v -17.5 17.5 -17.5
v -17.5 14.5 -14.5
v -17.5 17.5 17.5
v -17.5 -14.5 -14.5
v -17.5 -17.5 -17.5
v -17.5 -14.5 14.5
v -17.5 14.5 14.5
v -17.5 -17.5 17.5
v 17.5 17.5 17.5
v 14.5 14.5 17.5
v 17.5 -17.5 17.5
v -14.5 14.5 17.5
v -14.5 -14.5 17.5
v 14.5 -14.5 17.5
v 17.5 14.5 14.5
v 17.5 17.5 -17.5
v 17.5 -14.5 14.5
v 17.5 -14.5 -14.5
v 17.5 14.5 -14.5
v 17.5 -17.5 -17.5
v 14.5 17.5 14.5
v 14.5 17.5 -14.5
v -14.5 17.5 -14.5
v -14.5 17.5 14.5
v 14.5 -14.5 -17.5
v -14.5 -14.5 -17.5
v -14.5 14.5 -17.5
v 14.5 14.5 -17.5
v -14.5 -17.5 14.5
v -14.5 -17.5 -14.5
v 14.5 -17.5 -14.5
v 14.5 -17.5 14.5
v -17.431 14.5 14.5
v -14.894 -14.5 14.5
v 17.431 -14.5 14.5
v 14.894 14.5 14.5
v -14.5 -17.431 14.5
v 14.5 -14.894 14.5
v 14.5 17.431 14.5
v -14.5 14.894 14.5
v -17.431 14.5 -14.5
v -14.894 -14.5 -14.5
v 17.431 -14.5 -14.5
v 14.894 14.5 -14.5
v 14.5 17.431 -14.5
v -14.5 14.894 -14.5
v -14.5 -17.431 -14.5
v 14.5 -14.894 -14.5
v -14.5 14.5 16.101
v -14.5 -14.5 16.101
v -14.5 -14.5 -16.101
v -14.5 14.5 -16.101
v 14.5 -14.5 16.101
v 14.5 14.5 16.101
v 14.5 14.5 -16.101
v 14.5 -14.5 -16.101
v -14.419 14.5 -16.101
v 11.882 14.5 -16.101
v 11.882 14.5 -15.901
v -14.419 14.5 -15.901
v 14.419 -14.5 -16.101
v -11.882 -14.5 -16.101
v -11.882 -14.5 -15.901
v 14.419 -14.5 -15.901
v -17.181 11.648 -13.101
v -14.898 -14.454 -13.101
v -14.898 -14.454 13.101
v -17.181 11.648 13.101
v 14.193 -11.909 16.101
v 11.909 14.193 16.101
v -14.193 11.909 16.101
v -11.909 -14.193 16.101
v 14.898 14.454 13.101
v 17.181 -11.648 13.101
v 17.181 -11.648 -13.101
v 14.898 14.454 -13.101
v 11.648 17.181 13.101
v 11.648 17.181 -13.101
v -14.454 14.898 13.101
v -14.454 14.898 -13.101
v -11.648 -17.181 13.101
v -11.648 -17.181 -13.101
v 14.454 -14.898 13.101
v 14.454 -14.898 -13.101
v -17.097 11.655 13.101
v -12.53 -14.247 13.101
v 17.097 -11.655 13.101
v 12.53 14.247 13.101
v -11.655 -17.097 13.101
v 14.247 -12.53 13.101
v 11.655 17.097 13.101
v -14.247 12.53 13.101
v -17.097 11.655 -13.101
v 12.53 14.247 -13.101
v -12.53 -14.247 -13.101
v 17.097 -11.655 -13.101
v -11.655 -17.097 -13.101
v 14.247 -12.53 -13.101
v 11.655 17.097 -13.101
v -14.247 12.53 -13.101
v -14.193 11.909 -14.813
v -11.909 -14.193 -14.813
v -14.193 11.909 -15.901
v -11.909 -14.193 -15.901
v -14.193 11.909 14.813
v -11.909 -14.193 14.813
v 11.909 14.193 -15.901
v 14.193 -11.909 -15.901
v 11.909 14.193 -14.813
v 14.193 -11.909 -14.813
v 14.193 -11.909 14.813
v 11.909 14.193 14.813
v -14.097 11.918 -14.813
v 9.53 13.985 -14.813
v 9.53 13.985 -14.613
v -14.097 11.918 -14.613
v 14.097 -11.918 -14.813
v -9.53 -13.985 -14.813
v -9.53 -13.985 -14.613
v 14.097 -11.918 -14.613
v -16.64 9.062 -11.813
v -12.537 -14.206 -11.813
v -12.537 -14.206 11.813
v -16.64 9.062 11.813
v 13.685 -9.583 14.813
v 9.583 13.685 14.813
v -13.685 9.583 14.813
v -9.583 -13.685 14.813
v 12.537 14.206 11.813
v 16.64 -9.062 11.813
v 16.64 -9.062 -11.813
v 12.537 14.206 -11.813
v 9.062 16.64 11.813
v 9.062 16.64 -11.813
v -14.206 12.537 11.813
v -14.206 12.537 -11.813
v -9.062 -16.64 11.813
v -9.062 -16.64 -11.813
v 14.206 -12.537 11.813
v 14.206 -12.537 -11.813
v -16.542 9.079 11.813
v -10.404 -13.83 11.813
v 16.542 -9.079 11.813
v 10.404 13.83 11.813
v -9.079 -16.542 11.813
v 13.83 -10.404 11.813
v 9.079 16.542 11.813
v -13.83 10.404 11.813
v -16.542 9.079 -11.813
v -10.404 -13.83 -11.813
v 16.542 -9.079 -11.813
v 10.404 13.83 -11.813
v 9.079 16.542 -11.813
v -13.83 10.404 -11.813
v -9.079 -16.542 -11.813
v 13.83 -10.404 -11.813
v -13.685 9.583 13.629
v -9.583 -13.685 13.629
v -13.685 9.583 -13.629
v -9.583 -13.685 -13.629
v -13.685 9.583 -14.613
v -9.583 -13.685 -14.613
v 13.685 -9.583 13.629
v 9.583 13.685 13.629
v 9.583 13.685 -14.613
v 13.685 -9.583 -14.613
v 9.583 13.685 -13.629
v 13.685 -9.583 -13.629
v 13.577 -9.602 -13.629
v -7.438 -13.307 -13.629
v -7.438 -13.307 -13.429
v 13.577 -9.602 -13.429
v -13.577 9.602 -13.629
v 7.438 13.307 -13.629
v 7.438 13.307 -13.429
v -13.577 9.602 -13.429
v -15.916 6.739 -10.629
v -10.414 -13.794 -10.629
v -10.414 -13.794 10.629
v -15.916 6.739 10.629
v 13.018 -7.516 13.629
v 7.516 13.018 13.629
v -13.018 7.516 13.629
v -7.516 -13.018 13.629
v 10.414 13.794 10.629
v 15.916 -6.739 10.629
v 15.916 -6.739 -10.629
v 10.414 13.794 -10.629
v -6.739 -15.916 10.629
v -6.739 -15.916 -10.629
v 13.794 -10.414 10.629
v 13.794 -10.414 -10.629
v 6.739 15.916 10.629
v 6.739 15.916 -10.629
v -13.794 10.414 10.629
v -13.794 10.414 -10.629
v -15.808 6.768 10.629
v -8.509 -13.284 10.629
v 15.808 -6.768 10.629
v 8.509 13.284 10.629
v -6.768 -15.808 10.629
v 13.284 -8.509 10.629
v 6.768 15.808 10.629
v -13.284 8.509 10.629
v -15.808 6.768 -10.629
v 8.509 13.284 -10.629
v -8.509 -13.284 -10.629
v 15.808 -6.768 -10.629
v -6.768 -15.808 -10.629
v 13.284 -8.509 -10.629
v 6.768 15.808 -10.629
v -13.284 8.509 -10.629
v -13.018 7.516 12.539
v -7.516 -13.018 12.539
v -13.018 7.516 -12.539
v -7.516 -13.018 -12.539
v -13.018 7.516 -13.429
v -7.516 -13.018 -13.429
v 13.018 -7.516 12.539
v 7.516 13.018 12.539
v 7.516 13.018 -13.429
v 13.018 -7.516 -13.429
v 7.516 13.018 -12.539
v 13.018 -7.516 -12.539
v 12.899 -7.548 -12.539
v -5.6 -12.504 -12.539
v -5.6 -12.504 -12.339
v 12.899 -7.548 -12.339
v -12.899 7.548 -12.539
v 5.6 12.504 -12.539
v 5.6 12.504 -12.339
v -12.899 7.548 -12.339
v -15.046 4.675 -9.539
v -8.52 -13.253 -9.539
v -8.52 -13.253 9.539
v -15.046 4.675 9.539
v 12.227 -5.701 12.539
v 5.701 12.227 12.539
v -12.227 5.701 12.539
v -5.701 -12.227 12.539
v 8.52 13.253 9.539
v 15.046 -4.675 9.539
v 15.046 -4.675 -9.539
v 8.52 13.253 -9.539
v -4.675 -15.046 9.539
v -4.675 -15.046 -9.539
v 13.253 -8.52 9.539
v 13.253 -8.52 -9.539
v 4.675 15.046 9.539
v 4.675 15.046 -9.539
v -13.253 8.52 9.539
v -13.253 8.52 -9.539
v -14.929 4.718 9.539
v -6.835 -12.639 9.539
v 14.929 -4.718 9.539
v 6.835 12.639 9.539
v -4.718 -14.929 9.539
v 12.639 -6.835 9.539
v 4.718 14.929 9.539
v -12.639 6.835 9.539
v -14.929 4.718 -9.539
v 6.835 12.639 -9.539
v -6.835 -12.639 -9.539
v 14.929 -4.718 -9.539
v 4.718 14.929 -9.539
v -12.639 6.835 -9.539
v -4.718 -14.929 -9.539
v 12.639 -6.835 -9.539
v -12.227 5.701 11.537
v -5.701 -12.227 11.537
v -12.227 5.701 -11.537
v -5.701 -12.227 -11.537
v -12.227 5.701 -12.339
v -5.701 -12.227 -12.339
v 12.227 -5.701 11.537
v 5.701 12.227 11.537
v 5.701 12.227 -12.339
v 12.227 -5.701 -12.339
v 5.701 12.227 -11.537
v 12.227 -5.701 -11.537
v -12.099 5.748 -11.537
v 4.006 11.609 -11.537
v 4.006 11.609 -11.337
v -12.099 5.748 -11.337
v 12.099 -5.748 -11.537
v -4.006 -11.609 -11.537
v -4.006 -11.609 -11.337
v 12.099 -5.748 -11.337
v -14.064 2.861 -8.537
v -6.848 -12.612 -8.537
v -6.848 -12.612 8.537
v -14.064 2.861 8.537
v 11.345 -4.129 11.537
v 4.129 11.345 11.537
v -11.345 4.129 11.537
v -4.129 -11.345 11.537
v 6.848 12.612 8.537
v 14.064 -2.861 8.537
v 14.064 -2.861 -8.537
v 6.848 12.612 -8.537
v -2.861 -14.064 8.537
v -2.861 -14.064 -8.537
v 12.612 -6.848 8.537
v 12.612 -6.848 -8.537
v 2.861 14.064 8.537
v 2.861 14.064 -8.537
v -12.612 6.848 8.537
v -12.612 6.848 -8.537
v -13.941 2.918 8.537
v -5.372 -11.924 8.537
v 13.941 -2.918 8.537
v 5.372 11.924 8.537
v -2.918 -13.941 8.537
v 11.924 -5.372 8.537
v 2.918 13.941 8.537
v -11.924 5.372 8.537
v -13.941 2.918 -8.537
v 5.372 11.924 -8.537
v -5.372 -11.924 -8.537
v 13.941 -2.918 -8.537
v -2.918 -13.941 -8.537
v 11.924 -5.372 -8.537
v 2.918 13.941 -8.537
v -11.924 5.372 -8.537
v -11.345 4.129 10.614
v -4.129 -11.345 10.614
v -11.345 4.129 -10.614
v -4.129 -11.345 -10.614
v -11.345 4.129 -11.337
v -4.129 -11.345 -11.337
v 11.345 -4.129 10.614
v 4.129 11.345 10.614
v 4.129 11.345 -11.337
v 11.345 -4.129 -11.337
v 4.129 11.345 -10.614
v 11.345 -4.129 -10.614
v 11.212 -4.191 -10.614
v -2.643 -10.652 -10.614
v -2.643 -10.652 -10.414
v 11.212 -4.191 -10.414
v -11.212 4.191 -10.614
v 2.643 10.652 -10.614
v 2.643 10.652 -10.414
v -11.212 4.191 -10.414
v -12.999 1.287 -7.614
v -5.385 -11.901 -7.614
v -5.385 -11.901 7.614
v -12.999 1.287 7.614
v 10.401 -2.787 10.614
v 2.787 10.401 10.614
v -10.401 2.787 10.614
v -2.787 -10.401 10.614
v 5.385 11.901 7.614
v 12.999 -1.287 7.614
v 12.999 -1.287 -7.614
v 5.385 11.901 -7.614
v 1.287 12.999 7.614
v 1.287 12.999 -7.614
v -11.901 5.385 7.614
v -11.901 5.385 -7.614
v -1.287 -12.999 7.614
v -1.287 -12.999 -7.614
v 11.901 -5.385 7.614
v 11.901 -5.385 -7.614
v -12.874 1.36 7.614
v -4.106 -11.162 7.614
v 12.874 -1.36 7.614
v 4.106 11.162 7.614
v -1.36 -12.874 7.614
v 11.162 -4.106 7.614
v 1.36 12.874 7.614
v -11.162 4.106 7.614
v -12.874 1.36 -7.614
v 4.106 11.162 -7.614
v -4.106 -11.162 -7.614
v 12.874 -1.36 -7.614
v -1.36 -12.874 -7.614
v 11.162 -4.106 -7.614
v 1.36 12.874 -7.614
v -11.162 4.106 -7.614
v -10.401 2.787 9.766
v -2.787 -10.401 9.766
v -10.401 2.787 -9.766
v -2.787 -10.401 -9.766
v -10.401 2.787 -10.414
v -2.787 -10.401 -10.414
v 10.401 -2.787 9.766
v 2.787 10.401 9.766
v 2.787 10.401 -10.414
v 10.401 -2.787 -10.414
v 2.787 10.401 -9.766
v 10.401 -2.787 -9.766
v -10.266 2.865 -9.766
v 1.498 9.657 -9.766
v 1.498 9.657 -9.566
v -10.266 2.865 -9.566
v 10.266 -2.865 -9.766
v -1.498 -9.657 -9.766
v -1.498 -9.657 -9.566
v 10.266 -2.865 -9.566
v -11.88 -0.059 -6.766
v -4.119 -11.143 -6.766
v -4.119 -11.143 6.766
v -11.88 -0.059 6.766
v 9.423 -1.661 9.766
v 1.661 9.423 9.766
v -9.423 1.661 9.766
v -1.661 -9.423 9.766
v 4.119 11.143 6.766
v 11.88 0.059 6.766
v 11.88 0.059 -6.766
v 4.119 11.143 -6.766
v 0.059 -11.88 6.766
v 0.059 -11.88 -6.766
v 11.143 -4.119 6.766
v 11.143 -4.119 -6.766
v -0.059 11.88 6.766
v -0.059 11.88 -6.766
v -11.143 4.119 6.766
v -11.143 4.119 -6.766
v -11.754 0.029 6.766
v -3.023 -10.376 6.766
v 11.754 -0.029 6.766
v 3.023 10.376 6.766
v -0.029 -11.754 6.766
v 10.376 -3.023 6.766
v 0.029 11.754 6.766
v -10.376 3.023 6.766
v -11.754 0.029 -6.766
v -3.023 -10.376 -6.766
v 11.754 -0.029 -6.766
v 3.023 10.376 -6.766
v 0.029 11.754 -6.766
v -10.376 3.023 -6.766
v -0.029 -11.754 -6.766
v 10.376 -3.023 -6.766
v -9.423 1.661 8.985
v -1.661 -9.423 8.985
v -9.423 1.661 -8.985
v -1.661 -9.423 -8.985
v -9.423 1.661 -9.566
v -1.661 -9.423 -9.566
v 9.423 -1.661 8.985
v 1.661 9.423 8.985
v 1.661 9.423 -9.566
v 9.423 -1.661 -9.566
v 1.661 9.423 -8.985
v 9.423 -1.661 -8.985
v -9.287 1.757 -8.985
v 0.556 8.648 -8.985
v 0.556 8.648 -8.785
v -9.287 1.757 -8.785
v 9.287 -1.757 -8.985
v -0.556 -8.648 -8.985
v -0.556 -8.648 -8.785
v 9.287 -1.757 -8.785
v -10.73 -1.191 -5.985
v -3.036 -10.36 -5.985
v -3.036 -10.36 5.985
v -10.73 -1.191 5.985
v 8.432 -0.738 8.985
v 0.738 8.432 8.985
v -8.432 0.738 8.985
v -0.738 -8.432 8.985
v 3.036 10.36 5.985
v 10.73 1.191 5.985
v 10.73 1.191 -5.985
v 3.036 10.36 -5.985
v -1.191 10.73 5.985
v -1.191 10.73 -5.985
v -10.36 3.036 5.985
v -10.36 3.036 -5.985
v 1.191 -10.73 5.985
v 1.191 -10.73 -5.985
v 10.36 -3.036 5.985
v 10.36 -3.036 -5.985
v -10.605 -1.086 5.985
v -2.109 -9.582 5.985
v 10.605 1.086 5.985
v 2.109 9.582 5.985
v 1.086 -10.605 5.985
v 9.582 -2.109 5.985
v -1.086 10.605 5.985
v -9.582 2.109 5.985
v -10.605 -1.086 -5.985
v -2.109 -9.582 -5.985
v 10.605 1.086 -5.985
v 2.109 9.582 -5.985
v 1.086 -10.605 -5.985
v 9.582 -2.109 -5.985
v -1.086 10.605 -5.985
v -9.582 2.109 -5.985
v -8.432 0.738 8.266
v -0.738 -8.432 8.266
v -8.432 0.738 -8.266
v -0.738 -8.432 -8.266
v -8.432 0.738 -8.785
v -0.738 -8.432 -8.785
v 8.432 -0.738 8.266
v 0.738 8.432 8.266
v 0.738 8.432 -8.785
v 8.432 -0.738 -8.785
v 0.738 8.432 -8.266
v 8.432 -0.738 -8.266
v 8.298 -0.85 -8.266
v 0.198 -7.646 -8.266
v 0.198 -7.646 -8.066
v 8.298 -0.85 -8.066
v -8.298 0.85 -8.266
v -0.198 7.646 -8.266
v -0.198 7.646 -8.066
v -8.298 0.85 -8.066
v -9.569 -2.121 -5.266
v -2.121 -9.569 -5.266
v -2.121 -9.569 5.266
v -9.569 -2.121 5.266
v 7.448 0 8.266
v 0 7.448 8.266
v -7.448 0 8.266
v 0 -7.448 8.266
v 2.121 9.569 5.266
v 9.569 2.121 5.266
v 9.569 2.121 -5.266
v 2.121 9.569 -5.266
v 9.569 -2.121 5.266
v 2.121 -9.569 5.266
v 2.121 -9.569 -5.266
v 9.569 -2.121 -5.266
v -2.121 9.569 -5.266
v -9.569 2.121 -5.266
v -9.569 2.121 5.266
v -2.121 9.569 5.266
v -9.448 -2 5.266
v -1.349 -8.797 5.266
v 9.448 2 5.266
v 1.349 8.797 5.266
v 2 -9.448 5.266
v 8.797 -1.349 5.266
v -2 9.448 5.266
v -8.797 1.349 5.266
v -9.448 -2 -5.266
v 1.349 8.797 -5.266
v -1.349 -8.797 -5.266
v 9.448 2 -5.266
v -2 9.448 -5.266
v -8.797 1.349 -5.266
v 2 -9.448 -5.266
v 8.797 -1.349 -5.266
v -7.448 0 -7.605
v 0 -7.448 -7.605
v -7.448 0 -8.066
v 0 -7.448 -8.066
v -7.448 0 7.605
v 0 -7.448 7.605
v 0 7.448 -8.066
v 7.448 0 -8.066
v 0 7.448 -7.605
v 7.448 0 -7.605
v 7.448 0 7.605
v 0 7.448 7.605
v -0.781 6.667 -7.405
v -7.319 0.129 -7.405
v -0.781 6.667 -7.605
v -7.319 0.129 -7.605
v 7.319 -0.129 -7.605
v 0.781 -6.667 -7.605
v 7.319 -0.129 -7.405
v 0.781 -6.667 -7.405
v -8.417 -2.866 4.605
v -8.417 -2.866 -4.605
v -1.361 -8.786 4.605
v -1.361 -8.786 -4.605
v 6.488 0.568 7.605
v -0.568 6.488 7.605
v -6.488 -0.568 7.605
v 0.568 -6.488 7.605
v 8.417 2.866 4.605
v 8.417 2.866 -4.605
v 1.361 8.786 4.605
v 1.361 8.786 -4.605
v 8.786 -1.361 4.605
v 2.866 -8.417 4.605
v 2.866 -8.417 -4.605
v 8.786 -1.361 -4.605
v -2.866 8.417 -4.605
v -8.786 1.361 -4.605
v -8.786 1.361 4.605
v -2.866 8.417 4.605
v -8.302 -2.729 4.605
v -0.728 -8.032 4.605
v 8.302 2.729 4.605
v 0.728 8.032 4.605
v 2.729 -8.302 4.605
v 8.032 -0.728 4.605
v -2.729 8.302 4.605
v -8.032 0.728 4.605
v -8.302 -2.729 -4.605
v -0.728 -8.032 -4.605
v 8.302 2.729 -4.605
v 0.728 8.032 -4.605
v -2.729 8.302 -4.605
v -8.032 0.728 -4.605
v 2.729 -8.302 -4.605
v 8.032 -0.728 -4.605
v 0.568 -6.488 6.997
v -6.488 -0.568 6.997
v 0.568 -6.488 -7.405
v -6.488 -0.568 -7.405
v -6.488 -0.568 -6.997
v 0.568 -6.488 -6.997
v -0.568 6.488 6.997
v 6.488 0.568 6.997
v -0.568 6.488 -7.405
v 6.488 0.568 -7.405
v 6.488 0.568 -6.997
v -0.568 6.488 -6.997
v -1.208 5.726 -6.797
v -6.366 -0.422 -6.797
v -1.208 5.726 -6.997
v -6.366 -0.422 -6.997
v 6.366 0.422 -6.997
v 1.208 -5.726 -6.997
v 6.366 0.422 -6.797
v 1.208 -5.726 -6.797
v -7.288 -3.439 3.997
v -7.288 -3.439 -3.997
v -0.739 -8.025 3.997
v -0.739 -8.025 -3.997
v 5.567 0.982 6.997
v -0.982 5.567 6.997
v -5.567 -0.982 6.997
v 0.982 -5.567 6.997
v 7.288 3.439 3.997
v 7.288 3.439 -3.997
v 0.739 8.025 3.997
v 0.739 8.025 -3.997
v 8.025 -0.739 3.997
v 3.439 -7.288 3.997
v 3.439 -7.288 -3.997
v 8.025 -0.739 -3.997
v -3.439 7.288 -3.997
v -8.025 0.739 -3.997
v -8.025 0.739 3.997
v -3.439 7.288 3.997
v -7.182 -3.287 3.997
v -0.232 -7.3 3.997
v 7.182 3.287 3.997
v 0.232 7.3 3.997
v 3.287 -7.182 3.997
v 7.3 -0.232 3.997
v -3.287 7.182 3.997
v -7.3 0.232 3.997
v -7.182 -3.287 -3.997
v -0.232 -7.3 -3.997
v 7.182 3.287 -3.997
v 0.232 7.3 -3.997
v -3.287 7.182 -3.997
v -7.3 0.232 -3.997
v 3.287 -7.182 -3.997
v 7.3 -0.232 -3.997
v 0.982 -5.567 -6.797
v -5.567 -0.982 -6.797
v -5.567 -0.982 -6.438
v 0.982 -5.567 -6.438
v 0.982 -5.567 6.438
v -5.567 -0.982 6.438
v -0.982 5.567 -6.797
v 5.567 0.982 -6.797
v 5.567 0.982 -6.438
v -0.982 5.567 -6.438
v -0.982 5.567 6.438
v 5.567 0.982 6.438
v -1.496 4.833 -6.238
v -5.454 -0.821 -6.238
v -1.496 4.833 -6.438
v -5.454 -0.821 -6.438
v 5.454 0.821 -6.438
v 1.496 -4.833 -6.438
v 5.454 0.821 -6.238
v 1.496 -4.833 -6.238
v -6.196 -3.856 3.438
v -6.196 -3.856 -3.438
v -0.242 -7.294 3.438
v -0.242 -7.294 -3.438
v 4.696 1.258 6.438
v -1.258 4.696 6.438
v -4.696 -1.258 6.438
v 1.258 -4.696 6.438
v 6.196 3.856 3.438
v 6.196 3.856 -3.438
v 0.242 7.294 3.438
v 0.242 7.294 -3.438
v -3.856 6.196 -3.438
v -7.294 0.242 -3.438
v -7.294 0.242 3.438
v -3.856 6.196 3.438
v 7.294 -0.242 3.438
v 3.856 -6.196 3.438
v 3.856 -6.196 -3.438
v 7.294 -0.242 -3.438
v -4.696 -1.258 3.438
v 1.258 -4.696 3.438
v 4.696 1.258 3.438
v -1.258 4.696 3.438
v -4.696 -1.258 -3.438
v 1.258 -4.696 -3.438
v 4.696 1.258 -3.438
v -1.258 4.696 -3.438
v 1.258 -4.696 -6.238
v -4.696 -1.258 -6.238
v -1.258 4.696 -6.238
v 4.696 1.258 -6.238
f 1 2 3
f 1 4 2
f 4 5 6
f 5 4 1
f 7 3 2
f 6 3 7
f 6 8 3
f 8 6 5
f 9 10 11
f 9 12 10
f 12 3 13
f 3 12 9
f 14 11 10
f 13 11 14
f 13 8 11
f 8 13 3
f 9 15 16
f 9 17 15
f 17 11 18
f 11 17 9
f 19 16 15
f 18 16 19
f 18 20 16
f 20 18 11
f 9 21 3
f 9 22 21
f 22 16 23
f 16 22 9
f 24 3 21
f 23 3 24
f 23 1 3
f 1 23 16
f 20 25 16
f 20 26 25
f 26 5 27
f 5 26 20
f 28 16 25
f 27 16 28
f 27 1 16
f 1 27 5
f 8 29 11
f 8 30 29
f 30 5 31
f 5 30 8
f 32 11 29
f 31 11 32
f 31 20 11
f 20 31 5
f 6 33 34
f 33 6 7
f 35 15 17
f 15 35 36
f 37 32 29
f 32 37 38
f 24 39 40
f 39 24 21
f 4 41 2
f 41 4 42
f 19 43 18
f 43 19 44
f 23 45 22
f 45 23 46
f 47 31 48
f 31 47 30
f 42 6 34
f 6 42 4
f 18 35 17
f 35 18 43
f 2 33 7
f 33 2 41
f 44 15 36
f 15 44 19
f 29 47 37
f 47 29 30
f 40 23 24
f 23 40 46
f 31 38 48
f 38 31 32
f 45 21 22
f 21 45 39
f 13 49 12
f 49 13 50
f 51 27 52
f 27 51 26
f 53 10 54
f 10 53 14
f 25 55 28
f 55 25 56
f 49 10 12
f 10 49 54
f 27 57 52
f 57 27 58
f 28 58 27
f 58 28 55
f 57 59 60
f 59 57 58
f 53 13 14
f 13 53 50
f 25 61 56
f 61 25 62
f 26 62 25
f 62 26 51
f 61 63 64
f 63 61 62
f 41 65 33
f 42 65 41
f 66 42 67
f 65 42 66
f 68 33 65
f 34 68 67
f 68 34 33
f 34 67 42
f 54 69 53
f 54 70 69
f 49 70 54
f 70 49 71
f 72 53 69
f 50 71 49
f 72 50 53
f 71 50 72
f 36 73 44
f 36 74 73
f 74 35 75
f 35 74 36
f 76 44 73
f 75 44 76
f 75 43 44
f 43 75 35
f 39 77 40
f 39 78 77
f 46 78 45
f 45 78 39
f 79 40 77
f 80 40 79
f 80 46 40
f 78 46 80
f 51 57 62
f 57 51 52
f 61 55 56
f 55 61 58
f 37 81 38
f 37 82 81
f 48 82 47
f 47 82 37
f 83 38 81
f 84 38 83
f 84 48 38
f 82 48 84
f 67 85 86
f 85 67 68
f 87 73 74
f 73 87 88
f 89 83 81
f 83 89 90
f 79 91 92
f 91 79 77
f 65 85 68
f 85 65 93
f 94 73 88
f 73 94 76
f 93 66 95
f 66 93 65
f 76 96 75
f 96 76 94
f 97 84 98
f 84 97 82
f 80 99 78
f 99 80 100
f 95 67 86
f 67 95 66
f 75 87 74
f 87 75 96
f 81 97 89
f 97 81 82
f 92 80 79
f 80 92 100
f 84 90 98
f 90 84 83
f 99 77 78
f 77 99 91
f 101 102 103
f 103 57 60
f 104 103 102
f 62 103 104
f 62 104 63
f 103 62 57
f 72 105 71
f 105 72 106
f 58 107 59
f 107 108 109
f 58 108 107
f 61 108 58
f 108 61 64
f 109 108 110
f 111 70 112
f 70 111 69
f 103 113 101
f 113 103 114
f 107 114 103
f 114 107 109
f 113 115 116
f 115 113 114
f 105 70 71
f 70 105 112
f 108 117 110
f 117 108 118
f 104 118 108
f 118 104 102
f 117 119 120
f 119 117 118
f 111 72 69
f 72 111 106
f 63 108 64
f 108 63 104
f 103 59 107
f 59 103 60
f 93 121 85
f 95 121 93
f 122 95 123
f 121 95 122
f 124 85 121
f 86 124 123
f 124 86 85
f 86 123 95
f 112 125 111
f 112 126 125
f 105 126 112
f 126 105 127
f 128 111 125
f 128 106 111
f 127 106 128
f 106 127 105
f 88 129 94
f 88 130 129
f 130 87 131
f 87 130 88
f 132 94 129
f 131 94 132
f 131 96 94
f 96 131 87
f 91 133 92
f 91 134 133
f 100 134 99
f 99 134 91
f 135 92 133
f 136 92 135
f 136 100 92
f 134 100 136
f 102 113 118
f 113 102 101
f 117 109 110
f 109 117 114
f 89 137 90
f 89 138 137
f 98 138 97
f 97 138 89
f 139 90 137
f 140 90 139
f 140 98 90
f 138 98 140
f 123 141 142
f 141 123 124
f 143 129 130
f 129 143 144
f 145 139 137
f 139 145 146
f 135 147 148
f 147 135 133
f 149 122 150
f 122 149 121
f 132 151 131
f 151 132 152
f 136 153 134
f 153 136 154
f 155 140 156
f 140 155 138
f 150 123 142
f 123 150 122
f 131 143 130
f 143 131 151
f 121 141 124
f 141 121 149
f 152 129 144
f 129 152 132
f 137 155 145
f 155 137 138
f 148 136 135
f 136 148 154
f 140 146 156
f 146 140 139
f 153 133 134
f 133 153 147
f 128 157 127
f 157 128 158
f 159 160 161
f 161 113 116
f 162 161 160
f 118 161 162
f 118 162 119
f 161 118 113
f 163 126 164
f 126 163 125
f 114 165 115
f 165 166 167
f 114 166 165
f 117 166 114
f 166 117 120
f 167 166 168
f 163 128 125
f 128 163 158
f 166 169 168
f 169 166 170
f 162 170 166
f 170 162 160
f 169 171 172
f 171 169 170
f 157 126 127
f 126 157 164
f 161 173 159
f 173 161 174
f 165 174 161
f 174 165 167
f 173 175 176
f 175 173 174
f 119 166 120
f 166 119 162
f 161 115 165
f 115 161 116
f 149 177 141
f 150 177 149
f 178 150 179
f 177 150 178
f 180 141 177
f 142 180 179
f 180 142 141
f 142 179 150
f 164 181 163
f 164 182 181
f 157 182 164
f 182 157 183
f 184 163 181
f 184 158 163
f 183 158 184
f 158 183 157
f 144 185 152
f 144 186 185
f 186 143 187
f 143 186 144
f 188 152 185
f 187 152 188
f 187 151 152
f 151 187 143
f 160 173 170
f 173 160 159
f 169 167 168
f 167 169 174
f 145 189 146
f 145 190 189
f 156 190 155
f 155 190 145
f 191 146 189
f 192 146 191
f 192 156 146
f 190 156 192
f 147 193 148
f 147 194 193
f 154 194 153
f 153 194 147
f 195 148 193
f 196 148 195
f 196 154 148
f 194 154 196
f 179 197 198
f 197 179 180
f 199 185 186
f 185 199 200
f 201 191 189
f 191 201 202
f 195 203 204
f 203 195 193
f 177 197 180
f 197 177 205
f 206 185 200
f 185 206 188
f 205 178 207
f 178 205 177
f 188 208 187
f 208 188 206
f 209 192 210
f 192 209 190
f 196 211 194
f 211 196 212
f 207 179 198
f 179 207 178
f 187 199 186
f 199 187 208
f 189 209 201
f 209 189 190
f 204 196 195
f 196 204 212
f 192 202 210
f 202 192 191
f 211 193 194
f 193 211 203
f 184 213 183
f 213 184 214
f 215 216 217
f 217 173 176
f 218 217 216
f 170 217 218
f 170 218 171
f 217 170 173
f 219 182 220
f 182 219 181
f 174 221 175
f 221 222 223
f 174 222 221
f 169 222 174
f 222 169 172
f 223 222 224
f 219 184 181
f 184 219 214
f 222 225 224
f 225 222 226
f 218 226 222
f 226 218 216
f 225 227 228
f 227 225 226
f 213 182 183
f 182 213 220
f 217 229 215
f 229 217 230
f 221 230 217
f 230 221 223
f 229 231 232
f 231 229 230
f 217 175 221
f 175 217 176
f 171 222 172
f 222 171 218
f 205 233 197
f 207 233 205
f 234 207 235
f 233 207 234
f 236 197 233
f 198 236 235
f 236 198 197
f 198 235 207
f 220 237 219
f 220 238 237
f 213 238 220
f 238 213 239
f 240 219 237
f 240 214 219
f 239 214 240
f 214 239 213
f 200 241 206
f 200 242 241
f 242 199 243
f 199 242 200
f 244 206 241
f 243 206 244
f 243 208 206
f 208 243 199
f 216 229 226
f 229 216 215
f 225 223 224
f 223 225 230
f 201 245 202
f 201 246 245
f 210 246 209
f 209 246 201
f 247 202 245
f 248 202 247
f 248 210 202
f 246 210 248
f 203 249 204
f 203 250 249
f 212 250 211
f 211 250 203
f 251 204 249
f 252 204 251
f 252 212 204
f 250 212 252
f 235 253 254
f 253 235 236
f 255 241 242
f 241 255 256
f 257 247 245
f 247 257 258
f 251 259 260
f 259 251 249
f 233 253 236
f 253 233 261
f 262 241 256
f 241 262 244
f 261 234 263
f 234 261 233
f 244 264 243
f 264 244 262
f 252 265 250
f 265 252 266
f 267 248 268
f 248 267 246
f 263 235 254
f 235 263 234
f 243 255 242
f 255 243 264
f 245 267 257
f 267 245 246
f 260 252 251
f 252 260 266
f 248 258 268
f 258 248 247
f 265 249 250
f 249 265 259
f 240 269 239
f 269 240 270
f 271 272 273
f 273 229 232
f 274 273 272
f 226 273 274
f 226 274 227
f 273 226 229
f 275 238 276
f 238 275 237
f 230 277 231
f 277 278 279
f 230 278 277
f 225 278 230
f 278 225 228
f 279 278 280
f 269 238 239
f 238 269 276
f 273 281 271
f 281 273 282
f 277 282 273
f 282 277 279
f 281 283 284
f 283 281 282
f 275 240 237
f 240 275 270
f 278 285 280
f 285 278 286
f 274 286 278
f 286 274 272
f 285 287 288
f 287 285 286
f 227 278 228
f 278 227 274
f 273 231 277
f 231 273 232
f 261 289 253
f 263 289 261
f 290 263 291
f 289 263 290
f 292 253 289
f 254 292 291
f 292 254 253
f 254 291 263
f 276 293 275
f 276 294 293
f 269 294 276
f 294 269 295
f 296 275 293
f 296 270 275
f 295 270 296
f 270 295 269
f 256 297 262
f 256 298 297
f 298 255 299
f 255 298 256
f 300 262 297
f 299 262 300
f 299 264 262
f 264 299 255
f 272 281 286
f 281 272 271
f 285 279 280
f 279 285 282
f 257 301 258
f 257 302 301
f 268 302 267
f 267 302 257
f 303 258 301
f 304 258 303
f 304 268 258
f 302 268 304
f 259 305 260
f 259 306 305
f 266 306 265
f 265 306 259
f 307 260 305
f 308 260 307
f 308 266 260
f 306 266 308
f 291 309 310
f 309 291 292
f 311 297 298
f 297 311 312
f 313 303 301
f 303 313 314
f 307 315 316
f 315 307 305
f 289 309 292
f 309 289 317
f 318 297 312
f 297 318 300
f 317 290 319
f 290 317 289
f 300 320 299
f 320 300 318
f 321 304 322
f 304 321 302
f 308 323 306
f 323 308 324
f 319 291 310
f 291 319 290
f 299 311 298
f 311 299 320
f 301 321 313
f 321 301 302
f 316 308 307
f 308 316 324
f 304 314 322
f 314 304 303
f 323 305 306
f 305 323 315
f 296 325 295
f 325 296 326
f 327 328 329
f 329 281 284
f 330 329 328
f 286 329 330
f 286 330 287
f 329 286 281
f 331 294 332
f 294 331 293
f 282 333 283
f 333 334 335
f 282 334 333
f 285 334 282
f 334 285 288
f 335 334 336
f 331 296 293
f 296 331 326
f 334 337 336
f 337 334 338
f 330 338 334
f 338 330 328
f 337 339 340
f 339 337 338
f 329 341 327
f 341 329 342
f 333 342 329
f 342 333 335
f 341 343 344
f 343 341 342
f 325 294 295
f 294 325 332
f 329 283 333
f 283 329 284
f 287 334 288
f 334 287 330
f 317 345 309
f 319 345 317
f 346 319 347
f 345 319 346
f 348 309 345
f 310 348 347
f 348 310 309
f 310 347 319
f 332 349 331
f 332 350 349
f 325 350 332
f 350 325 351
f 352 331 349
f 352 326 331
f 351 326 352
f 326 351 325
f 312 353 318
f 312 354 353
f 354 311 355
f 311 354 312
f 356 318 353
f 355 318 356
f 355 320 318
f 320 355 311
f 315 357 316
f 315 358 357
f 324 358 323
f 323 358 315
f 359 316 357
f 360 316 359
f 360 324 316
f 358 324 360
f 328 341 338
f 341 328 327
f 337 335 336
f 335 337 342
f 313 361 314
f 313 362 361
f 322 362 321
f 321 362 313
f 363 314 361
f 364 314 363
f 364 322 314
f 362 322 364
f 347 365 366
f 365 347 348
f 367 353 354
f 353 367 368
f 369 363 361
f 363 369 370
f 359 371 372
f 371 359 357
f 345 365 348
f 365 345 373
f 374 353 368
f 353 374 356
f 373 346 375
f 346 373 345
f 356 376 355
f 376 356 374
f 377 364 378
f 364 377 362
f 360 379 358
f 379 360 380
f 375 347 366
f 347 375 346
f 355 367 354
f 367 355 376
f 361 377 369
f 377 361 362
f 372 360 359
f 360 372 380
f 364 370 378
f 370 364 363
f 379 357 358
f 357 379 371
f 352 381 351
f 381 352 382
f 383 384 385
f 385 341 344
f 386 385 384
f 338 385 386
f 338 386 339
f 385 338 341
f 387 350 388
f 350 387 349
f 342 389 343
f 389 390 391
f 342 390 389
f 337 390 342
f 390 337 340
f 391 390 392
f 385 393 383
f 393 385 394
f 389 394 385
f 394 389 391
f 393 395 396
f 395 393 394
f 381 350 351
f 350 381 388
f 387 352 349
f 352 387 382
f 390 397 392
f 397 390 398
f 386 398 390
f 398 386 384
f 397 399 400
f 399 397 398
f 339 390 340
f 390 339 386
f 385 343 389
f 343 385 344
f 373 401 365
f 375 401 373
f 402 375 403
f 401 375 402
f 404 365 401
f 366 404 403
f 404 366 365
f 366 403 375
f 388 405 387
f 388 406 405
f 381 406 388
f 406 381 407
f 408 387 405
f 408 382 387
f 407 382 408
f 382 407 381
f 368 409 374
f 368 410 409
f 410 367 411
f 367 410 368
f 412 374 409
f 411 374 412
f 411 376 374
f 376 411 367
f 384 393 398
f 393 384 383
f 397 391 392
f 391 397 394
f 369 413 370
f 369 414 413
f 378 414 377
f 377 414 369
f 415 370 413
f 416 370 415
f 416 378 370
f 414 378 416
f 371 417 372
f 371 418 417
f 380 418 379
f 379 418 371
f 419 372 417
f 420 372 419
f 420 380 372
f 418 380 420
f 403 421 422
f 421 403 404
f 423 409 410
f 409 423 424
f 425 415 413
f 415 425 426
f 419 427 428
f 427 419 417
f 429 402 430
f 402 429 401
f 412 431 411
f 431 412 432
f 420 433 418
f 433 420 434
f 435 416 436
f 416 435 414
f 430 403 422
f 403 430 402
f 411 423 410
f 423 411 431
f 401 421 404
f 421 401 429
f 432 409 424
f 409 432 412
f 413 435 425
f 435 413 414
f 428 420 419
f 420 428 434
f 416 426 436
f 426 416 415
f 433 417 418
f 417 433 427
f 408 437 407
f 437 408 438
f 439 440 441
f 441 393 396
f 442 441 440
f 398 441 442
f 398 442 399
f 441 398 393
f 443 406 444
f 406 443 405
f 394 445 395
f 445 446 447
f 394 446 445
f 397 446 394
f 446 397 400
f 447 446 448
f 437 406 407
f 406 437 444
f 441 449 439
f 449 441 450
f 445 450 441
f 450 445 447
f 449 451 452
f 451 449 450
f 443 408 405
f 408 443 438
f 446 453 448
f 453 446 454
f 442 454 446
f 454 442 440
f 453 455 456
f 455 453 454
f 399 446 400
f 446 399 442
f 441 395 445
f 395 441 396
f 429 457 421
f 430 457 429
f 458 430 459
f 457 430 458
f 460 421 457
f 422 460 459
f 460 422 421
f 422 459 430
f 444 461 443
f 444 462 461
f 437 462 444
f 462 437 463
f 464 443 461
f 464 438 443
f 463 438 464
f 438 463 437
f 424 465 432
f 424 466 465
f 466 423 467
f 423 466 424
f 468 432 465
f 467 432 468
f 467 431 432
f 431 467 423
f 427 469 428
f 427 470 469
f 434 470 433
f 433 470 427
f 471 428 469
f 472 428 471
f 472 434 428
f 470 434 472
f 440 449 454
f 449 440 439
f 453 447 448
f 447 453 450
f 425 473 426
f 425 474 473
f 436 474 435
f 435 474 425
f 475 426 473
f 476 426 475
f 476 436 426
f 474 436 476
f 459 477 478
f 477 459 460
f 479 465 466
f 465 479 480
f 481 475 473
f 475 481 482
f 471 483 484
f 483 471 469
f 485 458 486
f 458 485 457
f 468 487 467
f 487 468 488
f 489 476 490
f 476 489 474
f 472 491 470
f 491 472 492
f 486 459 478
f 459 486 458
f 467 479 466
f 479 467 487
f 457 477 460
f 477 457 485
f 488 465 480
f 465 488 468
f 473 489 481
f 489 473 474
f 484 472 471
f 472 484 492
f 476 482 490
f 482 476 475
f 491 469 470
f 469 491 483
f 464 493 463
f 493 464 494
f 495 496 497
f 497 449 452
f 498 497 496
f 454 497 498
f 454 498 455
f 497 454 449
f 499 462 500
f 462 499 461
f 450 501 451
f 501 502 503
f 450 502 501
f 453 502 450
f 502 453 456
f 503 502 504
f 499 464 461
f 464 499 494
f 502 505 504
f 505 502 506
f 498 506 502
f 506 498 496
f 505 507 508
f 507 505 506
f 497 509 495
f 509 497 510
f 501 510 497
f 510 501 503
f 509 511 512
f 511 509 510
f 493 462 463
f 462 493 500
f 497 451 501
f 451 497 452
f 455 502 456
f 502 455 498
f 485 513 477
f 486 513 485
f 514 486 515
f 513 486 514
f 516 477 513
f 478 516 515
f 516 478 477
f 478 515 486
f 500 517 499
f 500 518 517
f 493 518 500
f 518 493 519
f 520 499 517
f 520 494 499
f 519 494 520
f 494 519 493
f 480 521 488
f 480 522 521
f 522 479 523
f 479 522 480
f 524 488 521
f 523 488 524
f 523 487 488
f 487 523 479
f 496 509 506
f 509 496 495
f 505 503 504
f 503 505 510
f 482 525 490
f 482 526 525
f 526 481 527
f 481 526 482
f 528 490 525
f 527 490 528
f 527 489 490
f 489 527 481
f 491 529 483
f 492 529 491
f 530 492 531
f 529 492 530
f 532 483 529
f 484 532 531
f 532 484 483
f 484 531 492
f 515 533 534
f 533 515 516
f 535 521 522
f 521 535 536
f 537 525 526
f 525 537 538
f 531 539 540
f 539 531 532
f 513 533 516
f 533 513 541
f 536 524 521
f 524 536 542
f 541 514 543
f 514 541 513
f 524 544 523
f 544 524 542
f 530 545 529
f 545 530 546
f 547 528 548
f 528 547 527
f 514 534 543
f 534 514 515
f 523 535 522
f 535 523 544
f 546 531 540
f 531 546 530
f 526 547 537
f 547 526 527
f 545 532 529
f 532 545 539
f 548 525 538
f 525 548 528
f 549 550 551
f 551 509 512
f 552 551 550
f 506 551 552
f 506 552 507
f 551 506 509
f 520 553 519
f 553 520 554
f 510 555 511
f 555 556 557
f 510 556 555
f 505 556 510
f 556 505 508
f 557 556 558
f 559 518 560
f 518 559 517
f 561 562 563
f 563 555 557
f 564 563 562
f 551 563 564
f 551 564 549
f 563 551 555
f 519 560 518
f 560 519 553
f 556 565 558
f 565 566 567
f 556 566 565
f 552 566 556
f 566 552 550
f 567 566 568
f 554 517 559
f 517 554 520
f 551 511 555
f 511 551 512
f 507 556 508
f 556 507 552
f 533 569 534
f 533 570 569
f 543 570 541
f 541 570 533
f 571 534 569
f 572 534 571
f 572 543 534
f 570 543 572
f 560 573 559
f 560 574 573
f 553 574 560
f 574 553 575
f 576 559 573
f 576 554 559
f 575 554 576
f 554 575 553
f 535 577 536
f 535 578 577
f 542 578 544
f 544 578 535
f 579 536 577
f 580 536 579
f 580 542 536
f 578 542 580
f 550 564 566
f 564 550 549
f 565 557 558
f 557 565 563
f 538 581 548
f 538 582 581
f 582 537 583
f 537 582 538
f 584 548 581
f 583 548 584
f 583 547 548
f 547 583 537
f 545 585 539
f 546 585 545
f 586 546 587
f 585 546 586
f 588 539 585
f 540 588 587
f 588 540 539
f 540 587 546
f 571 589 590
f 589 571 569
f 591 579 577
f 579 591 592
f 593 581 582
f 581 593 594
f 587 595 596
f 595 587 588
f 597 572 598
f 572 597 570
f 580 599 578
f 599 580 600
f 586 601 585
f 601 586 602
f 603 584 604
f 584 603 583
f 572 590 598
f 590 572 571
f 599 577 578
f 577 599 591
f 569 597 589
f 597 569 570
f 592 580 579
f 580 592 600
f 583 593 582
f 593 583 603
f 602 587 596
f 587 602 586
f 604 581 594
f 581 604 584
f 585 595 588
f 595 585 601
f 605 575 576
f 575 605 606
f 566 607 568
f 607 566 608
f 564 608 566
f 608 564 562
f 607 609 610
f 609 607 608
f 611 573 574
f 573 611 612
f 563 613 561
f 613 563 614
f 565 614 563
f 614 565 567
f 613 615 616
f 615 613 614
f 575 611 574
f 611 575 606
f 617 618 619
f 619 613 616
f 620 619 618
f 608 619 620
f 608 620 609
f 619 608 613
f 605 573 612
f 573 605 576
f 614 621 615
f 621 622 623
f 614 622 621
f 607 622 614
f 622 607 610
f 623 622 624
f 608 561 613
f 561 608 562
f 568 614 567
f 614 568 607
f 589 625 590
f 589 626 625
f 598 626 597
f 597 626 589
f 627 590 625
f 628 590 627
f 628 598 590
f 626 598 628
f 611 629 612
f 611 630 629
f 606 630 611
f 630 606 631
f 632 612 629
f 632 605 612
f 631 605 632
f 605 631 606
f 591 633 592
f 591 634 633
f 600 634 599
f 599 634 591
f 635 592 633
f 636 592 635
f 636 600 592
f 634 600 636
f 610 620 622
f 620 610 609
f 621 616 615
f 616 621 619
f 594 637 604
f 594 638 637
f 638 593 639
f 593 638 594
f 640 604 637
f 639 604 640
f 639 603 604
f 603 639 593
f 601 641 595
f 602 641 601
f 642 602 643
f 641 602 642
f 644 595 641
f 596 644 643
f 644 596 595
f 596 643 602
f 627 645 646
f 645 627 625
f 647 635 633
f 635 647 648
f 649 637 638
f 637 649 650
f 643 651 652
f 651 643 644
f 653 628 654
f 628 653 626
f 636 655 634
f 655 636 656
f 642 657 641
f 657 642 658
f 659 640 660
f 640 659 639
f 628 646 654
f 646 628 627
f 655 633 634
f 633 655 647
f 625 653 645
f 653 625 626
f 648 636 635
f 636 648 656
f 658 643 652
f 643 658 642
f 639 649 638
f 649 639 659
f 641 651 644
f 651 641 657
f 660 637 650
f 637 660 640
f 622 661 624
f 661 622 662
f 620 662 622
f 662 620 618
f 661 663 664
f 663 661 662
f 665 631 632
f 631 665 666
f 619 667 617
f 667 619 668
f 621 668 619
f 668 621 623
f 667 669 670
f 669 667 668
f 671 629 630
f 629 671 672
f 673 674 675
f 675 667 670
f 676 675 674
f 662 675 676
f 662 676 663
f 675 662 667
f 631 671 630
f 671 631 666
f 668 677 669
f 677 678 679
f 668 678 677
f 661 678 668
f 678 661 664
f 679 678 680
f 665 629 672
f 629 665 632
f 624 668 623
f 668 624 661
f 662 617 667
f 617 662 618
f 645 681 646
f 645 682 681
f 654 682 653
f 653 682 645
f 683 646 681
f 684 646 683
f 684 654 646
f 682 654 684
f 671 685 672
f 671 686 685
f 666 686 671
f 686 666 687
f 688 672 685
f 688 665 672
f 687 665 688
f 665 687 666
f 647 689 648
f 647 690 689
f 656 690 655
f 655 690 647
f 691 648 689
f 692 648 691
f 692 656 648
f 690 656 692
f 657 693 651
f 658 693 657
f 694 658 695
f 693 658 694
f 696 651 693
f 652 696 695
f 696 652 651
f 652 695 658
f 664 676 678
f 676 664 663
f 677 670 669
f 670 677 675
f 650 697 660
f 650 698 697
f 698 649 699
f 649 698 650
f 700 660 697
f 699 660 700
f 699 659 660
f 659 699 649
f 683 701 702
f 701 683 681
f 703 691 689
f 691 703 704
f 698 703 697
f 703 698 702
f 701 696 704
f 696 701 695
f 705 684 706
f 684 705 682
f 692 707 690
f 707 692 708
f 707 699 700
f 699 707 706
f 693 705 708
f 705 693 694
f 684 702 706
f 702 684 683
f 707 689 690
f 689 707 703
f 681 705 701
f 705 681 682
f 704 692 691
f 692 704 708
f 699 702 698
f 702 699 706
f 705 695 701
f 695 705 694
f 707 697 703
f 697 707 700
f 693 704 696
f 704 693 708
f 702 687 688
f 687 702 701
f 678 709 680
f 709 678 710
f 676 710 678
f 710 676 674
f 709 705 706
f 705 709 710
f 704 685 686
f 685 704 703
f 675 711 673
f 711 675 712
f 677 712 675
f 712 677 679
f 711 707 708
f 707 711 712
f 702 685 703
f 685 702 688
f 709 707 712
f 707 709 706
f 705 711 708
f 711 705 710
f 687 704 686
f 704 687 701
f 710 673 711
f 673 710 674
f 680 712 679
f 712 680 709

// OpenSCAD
WALL_THICKNESS = 3;
SIZE = 35;
STEPS = 12;
TOTAL_ROTATION = 60;
LAYER = 0.2;

module make_cube_edges(size, rotation, etch_base) {
    thickness = WALL_THICKNESS;
    d1 = size - thickness*2; // to keep walls
    d2 = size + thickness; // to dig face
    rotate([0, 0, rotation])
    difference() {
        cube([size, size, size], true); // full cube
        cube([d2, d1, d1], true); // dig along X axis
        cube([d1, d2, d1], true); // dig along Y axis
        cube([d1, d1, d2], true); // dig along Z axis
        
        if (etch_base)
            translate([0, 0, -size/2])
            cube([d1, d2, LAYER*2], true); // dig along Z axis
    }        
}

for (i=[0:STEPS]) {
    make_cube_edges(SIZE / exp(i/STEPS), i/STEPS * TOTAL_ROTATION, i);
}
